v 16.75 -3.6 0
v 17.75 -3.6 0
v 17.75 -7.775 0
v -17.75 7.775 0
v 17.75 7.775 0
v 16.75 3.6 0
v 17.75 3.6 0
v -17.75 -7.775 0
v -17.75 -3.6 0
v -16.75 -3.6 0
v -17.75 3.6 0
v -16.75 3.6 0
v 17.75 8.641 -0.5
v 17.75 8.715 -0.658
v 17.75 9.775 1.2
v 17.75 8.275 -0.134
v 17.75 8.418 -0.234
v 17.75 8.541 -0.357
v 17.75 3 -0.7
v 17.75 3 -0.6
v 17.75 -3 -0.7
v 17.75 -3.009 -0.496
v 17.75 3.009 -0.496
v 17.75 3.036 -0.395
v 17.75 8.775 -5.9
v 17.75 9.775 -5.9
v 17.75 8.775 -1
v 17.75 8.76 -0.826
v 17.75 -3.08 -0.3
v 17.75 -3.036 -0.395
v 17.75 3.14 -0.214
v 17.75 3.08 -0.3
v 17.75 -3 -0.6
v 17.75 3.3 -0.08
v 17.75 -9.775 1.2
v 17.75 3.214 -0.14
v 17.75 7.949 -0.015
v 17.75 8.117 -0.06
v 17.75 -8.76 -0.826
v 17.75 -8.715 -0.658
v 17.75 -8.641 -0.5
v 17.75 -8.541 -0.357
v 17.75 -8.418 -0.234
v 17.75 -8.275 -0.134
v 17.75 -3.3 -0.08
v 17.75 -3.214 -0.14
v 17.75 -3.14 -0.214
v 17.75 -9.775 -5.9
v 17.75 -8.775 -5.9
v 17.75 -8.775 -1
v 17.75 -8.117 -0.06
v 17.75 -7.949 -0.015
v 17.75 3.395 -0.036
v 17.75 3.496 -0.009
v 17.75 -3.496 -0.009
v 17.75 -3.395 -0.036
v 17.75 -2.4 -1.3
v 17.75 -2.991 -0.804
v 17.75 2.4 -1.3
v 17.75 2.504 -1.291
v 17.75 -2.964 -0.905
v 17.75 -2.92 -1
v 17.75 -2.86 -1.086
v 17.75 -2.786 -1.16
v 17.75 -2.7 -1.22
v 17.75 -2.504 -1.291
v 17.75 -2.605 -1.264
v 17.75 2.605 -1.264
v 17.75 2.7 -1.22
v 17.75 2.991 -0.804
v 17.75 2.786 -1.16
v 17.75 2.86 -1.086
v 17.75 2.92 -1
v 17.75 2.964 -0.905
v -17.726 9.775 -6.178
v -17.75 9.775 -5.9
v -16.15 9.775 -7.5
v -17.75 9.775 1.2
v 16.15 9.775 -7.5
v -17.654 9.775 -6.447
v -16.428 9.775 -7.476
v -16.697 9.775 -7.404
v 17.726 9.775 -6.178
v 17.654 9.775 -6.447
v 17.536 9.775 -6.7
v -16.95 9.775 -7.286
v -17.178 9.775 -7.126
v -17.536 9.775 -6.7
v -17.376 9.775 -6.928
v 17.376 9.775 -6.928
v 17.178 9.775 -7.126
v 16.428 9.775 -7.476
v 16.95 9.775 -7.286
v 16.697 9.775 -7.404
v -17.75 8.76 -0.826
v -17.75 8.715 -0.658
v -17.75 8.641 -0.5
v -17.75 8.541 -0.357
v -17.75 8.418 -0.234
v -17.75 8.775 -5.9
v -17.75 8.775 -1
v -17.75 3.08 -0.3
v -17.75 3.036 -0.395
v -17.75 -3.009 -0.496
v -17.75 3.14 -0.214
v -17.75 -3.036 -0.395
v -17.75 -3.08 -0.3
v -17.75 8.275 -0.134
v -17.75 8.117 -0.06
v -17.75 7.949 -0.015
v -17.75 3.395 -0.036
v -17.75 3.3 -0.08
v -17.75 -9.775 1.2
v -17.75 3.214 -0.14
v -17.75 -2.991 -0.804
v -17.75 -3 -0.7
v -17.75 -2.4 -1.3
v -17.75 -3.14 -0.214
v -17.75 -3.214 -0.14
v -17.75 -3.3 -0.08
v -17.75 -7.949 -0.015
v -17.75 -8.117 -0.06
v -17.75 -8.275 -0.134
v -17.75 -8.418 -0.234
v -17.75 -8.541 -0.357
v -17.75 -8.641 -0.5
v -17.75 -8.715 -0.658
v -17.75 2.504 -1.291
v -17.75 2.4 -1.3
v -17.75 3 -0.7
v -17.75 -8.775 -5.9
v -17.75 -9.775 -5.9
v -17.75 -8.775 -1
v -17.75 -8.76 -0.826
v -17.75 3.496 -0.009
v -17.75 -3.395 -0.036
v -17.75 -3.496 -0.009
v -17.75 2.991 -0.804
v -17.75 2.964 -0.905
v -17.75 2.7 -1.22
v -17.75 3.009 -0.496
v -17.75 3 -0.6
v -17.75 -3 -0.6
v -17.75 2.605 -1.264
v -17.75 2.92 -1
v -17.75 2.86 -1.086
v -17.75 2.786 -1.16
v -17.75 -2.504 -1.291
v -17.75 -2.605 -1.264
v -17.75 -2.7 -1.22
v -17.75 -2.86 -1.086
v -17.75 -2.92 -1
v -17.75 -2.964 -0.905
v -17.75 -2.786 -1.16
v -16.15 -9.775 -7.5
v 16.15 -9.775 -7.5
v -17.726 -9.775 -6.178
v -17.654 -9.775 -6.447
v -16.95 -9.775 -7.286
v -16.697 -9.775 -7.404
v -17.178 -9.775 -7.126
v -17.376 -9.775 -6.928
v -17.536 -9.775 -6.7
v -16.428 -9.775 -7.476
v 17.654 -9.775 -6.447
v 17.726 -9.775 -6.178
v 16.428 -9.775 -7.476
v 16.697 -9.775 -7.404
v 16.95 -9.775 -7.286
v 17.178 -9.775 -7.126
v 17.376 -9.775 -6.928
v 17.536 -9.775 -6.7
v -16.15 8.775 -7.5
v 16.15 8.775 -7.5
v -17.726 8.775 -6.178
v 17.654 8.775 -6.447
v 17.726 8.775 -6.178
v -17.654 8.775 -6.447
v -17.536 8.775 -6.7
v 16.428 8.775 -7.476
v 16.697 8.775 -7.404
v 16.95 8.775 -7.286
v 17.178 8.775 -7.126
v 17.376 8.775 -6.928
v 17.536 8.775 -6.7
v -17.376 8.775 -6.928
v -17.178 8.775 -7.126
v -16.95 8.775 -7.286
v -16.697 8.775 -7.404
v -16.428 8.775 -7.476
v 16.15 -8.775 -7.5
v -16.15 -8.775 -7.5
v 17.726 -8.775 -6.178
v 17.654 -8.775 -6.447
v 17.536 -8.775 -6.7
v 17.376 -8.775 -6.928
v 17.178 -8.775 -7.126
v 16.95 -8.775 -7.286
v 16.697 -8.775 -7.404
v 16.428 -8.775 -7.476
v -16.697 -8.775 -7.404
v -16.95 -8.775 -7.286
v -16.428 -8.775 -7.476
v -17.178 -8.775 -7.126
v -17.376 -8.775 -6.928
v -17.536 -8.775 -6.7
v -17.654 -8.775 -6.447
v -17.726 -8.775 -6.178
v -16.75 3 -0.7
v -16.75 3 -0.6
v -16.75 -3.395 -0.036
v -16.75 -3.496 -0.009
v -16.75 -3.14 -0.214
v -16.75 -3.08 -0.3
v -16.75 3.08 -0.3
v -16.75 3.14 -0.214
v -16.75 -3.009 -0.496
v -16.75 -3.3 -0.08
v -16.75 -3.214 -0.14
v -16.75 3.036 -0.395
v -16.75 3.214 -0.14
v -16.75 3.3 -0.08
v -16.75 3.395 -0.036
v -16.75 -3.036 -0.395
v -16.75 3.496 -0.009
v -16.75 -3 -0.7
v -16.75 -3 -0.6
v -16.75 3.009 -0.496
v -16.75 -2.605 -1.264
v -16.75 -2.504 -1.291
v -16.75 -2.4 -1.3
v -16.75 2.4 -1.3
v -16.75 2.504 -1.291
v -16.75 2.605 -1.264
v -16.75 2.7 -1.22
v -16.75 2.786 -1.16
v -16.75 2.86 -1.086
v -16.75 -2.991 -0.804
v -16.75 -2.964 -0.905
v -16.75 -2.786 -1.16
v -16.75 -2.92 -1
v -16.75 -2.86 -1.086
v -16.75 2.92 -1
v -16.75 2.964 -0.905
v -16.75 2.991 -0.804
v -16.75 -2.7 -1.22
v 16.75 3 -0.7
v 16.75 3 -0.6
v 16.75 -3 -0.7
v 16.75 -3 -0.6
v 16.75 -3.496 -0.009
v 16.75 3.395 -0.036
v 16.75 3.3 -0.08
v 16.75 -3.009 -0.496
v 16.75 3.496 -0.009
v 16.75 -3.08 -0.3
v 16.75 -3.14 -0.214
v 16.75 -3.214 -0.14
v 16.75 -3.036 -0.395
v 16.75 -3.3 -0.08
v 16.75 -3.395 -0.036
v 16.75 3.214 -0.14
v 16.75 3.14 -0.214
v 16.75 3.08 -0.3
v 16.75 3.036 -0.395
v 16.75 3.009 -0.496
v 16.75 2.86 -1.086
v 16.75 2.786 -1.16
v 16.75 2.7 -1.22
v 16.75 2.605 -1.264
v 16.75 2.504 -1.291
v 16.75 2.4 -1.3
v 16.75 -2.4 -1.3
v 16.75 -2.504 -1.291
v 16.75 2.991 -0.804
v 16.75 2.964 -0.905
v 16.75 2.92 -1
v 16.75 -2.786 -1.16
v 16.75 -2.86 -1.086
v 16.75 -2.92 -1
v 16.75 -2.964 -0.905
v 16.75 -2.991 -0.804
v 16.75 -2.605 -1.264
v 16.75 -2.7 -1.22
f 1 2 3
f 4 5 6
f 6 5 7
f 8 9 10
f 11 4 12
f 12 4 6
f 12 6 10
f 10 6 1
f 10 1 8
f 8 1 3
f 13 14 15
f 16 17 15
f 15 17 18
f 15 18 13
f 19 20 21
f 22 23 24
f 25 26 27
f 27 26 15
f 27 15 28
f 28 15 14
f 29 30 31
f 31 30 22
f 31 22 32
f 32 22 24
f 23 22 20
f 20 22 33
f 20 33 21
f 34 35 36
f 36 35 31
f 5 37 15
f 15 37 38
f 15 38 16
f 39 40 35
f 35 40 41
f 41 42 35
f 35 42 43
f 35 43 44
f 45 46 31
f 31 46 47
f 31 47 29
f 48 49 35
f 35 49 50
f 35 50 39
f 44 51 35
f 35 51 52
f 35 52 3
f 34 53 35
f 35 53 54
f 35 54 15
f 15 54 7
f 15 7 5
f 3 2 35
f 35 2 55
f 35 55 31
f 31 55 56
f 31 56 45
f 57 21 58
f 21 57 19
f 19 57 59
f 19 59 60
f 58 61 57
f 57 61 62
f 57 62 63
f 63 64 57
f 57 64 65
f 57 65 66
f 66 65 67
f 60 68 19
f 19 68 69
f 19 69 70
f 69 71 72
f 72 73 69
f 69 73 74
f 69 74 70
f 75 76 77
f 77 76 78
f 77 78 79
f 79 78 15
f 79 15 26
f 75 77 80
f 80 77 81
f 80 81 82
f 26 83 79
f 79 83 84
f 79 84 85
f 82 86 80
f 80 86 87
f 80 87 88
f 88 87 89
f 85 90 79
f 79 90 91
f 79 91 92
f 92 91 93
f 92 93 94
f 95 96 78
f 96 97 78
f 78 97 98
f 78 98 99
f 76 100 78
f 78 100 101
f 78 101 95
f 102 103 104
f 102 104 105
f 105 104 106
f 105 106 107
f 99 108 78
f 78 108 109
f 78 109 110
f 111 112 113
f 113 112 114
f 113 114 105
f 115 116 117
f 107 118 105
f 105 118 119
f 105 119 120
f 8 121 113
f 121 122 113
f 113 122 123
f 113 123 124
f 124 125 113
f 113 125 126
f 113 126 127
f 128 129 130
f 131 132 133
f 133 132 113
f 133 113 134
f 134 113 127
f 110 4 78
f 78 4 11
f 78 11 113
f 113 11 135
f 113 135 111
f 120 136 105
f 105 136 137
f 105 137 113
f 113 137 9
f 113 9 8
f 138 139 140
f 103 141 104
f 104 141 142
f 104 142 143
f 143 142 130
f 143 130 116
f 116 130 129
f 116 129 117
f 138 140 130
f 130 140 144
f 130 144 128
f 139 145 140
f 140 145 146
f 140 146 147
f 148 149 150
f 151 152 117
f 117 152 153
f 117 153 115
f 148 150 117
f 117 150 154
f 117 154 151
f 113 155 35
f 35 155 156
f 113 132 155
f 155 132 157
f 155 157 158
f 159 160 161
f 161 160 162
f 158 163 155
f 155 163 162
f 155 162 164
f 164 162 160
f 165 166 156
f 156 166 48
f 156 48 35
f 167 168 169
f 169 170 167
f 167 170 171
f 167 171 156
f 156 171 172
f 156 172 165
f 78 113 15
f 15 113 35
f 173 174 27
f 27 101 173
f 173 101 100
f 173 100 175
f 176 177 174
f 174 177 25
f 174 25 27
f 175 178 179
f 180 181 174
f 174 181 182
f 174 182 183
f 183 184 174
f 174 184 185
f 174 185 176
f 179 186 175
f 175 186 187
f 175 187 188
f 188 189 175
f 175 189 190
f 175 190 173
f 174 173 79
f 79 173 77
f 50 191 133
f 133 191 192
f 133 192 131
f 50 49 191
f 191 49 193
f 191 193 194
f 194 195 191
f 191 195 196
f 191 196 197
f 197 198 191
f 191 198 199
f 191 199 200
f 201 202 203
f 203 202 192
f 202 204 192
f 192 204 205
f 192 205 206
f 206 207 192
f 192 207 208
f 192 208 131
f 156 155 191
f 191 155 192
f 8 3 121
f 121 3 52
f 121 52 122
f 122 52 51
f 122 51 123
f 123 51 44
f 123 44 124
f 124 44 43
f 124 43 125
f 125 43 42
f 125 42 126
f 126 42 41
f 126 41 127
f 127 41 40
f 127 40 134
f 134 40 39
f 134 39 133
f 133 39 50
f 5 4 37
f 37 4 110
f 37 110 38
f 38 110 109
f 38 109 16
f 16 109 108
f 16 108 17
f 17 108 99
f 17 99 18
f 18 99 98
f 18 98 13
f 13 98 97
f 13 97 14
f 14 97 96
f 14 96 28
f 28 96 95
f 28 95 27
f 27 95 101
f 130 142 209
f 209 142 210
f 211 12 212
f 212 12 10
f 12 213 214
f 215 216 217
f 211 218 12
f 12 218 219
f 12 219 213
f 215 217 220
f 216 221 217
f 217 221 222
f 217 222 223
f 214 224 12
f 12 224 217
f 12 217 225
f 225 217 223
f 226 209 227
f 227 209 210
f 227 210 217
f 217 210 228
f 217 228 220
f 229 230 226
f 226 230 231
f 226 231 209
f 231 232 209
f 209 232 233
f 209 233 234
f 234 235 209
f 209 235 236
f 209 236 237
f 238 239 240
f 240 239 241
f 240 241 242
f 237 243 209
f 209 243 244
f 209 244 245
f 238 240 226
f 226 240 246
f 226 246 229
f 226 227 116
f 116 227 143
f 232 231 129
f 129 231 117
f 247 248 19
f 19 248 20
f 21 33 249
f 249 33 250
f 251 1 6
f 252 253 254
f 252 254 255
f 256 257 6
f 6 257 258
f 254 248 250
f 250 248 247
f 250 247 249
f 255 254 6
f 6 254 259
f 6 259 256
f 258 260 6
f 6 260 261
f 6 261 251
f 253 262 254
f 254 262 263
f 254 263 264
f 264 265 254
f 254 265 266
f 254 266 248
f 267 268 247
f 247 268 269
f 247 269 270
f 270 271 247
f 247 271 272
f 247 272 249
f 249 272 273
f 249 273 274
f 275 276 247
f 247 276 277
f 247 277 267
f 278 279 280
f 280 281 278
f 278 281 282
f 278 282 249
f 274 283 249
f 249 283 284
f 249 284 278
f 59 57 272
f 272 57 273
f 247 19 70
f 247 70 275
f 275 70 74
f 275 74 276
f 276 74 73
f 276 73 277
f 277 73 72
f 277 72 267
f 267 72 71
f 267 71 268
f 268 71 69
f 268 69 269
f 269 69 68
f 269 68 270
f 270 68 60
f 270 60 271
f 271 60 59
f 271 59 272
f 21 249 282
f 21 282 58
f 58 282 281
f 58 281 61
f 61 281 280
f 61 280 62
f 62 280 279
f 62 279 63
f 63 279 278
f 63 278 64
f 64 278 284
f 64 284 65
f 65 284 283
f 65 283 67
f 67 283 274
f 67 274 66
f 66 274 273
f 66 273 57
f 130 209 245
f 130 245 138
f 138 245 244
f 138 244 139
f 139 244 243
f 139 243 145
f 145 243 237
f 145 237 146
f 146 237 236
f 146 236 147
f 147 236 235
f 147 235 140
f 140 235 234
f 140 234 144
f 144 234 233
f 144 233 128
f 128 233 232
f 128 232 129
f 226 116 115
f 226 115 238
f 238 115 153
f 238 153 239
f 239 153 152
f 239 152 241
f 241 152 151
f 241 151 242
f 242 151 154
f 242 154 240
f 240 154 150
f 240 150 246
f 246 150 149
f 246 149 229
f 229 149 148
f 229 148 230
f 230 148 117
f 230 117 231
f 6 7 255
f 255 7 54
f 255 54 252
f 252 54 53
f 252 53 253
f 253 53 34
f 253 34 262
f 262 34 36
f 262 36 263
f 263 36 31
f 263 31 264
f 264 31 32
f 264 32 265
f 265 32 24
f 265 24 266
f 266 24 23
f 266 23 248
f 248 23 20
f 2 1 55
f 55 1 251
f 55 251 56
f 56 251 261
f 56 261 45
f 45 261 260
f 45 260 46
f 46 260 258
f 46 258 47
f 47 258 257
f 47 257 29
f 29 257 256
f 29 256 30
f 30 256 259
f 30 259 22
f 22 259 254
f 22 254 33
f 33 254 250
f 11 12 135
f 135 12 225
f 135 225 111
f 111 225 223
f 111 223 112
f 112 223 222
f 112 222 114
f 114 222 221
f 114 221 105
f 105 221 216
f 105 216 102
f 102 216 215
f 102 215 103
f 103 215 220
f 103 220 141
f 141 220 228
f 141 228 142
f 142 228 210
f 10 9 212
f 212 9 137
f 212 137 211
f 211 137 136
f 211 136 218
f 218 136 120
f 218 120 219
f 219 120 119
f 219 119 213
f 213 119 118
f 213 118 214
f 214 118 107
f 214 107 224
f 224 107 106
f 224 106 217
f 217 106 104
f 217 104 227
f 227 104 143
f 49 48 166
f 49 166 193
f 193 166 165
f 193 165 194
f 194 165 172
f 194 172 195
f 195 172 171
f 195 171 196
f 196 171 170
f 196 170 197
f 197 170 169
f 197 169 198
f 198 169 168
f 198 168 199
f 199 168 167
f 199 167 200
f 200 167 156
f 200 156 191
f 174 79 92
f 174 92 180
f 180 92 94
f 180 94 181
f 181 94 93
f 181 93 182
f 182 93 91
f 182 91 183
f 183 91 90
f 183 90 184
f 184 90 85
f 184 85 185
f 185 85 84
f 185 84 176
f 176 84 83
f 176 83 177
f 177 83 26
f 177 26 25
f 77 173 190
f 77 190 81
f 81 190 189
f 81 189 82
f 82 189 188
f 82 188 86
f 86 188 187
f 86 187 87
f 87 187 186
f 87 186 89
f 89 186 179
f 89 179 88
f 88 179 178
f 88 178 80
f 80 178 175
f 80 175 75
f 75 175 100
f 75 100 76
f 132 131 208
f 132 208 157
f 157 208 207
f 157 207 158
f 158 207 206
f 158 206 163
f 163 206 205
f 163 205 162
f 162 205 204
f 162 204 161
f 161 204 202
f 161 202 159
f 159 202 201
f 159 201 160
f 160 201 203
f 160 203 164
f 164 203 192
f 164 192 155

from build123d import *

# Parameters (mm, degrees)
SKETCH1_W           = 35.5
SKETCH1_H           = 19.55
BOSS_EXTRUDE1_DEPTH = 1.2
SKETCH2_W           = 35.5
SKETCH2_H           = 1
BOSS_EXTRUDE2_DEPTH = 7.5
FILLET1_R           = 1
SKETCH3_W           = 1
SKETCH3_H           = 6
BOSS_EXTRUDE3_DEPTH = 1.3
FILLET2_R           = 0.6
FILLET3_R           = 1.6


with BuildPart() as part:
    # Sketch1 → Boss-Extrude1 (new body)
    with BuildSketch(Plane.XY):
        Rectangle(SKETCH1_W, SKETCH1_H)
    extrude(amount=BOSS_EXTRUDE1_DEPTH)

    # Sketch2 → Boss-Extrude2 (add)
    with BuildSketch(Plane(origin=(0, 0, 0), x_dir=(-1, 0, 0), z_dir=(0, 0, -1))):
        with Locations((0, 9.275)):
            Rectangle(SKETCH2_W, SKETCH2_H)
        with Locations((0, -9.275)):
            Rectangle(SKETCH2_W, SKETCH2_H)
    extrude(amount=BOSS_EXTRUDE2_DEPTH)

    # Fillet1
    fillet1_edges = [part.edges().sort_by_distance(p)[0] for p in [
        (0, 8.775, 0),
        (0, -8.775, 0),
    ]]
    fillet(fillet1_edges, radius=FILLET1_R)

    # Sketch3 → Boss-Extrude3 (add)
    with BuildSketch(Plane(origin=(0, 0, 0), x_dir=(-1, 0, 0), z_dir=(0, 0, -1))):
        with Locations((17.25, 0)):
            Rectangle(SKETCH3_W, SKETCH3_H)
        with Locations((-17.25, 0)):
            Rectangle(SKETCH3_W, SKETCH3_H)
    extrude(amount=BOSS_EXTRUDE3_DEPTH)

    # Fillet2
    fillet2_edges = [part.edges().sort_by_distance(p)[0] for p in [
        (-17.25, 3, 0),
        (-17.25, -3, 0),
        (-17.25, 3, -1.3),
        (-17.25, -3, -1.3),
        (17.25, 3, 0),
        (17.25, -3, 0),
        (17.25, 3, -1.3),
        (17.25, -3, -1.3),
    ]]
    fillet(fillet2_edges, radius=FILLET2_R)

    # Fillet3
    fillet3_edges = [part.edges().sort_by_distance(p)[0] for p in [
        (17.75, 9.275, -7.5),
        (-17.75, 9.275, -7.5),
        (17.75, -9.275, -7.5),
        (-17.75, -9.275, -7.5),
    ]]
    fillet(fillet3_edges, radius=FILLET3_R)


solid = part.part
